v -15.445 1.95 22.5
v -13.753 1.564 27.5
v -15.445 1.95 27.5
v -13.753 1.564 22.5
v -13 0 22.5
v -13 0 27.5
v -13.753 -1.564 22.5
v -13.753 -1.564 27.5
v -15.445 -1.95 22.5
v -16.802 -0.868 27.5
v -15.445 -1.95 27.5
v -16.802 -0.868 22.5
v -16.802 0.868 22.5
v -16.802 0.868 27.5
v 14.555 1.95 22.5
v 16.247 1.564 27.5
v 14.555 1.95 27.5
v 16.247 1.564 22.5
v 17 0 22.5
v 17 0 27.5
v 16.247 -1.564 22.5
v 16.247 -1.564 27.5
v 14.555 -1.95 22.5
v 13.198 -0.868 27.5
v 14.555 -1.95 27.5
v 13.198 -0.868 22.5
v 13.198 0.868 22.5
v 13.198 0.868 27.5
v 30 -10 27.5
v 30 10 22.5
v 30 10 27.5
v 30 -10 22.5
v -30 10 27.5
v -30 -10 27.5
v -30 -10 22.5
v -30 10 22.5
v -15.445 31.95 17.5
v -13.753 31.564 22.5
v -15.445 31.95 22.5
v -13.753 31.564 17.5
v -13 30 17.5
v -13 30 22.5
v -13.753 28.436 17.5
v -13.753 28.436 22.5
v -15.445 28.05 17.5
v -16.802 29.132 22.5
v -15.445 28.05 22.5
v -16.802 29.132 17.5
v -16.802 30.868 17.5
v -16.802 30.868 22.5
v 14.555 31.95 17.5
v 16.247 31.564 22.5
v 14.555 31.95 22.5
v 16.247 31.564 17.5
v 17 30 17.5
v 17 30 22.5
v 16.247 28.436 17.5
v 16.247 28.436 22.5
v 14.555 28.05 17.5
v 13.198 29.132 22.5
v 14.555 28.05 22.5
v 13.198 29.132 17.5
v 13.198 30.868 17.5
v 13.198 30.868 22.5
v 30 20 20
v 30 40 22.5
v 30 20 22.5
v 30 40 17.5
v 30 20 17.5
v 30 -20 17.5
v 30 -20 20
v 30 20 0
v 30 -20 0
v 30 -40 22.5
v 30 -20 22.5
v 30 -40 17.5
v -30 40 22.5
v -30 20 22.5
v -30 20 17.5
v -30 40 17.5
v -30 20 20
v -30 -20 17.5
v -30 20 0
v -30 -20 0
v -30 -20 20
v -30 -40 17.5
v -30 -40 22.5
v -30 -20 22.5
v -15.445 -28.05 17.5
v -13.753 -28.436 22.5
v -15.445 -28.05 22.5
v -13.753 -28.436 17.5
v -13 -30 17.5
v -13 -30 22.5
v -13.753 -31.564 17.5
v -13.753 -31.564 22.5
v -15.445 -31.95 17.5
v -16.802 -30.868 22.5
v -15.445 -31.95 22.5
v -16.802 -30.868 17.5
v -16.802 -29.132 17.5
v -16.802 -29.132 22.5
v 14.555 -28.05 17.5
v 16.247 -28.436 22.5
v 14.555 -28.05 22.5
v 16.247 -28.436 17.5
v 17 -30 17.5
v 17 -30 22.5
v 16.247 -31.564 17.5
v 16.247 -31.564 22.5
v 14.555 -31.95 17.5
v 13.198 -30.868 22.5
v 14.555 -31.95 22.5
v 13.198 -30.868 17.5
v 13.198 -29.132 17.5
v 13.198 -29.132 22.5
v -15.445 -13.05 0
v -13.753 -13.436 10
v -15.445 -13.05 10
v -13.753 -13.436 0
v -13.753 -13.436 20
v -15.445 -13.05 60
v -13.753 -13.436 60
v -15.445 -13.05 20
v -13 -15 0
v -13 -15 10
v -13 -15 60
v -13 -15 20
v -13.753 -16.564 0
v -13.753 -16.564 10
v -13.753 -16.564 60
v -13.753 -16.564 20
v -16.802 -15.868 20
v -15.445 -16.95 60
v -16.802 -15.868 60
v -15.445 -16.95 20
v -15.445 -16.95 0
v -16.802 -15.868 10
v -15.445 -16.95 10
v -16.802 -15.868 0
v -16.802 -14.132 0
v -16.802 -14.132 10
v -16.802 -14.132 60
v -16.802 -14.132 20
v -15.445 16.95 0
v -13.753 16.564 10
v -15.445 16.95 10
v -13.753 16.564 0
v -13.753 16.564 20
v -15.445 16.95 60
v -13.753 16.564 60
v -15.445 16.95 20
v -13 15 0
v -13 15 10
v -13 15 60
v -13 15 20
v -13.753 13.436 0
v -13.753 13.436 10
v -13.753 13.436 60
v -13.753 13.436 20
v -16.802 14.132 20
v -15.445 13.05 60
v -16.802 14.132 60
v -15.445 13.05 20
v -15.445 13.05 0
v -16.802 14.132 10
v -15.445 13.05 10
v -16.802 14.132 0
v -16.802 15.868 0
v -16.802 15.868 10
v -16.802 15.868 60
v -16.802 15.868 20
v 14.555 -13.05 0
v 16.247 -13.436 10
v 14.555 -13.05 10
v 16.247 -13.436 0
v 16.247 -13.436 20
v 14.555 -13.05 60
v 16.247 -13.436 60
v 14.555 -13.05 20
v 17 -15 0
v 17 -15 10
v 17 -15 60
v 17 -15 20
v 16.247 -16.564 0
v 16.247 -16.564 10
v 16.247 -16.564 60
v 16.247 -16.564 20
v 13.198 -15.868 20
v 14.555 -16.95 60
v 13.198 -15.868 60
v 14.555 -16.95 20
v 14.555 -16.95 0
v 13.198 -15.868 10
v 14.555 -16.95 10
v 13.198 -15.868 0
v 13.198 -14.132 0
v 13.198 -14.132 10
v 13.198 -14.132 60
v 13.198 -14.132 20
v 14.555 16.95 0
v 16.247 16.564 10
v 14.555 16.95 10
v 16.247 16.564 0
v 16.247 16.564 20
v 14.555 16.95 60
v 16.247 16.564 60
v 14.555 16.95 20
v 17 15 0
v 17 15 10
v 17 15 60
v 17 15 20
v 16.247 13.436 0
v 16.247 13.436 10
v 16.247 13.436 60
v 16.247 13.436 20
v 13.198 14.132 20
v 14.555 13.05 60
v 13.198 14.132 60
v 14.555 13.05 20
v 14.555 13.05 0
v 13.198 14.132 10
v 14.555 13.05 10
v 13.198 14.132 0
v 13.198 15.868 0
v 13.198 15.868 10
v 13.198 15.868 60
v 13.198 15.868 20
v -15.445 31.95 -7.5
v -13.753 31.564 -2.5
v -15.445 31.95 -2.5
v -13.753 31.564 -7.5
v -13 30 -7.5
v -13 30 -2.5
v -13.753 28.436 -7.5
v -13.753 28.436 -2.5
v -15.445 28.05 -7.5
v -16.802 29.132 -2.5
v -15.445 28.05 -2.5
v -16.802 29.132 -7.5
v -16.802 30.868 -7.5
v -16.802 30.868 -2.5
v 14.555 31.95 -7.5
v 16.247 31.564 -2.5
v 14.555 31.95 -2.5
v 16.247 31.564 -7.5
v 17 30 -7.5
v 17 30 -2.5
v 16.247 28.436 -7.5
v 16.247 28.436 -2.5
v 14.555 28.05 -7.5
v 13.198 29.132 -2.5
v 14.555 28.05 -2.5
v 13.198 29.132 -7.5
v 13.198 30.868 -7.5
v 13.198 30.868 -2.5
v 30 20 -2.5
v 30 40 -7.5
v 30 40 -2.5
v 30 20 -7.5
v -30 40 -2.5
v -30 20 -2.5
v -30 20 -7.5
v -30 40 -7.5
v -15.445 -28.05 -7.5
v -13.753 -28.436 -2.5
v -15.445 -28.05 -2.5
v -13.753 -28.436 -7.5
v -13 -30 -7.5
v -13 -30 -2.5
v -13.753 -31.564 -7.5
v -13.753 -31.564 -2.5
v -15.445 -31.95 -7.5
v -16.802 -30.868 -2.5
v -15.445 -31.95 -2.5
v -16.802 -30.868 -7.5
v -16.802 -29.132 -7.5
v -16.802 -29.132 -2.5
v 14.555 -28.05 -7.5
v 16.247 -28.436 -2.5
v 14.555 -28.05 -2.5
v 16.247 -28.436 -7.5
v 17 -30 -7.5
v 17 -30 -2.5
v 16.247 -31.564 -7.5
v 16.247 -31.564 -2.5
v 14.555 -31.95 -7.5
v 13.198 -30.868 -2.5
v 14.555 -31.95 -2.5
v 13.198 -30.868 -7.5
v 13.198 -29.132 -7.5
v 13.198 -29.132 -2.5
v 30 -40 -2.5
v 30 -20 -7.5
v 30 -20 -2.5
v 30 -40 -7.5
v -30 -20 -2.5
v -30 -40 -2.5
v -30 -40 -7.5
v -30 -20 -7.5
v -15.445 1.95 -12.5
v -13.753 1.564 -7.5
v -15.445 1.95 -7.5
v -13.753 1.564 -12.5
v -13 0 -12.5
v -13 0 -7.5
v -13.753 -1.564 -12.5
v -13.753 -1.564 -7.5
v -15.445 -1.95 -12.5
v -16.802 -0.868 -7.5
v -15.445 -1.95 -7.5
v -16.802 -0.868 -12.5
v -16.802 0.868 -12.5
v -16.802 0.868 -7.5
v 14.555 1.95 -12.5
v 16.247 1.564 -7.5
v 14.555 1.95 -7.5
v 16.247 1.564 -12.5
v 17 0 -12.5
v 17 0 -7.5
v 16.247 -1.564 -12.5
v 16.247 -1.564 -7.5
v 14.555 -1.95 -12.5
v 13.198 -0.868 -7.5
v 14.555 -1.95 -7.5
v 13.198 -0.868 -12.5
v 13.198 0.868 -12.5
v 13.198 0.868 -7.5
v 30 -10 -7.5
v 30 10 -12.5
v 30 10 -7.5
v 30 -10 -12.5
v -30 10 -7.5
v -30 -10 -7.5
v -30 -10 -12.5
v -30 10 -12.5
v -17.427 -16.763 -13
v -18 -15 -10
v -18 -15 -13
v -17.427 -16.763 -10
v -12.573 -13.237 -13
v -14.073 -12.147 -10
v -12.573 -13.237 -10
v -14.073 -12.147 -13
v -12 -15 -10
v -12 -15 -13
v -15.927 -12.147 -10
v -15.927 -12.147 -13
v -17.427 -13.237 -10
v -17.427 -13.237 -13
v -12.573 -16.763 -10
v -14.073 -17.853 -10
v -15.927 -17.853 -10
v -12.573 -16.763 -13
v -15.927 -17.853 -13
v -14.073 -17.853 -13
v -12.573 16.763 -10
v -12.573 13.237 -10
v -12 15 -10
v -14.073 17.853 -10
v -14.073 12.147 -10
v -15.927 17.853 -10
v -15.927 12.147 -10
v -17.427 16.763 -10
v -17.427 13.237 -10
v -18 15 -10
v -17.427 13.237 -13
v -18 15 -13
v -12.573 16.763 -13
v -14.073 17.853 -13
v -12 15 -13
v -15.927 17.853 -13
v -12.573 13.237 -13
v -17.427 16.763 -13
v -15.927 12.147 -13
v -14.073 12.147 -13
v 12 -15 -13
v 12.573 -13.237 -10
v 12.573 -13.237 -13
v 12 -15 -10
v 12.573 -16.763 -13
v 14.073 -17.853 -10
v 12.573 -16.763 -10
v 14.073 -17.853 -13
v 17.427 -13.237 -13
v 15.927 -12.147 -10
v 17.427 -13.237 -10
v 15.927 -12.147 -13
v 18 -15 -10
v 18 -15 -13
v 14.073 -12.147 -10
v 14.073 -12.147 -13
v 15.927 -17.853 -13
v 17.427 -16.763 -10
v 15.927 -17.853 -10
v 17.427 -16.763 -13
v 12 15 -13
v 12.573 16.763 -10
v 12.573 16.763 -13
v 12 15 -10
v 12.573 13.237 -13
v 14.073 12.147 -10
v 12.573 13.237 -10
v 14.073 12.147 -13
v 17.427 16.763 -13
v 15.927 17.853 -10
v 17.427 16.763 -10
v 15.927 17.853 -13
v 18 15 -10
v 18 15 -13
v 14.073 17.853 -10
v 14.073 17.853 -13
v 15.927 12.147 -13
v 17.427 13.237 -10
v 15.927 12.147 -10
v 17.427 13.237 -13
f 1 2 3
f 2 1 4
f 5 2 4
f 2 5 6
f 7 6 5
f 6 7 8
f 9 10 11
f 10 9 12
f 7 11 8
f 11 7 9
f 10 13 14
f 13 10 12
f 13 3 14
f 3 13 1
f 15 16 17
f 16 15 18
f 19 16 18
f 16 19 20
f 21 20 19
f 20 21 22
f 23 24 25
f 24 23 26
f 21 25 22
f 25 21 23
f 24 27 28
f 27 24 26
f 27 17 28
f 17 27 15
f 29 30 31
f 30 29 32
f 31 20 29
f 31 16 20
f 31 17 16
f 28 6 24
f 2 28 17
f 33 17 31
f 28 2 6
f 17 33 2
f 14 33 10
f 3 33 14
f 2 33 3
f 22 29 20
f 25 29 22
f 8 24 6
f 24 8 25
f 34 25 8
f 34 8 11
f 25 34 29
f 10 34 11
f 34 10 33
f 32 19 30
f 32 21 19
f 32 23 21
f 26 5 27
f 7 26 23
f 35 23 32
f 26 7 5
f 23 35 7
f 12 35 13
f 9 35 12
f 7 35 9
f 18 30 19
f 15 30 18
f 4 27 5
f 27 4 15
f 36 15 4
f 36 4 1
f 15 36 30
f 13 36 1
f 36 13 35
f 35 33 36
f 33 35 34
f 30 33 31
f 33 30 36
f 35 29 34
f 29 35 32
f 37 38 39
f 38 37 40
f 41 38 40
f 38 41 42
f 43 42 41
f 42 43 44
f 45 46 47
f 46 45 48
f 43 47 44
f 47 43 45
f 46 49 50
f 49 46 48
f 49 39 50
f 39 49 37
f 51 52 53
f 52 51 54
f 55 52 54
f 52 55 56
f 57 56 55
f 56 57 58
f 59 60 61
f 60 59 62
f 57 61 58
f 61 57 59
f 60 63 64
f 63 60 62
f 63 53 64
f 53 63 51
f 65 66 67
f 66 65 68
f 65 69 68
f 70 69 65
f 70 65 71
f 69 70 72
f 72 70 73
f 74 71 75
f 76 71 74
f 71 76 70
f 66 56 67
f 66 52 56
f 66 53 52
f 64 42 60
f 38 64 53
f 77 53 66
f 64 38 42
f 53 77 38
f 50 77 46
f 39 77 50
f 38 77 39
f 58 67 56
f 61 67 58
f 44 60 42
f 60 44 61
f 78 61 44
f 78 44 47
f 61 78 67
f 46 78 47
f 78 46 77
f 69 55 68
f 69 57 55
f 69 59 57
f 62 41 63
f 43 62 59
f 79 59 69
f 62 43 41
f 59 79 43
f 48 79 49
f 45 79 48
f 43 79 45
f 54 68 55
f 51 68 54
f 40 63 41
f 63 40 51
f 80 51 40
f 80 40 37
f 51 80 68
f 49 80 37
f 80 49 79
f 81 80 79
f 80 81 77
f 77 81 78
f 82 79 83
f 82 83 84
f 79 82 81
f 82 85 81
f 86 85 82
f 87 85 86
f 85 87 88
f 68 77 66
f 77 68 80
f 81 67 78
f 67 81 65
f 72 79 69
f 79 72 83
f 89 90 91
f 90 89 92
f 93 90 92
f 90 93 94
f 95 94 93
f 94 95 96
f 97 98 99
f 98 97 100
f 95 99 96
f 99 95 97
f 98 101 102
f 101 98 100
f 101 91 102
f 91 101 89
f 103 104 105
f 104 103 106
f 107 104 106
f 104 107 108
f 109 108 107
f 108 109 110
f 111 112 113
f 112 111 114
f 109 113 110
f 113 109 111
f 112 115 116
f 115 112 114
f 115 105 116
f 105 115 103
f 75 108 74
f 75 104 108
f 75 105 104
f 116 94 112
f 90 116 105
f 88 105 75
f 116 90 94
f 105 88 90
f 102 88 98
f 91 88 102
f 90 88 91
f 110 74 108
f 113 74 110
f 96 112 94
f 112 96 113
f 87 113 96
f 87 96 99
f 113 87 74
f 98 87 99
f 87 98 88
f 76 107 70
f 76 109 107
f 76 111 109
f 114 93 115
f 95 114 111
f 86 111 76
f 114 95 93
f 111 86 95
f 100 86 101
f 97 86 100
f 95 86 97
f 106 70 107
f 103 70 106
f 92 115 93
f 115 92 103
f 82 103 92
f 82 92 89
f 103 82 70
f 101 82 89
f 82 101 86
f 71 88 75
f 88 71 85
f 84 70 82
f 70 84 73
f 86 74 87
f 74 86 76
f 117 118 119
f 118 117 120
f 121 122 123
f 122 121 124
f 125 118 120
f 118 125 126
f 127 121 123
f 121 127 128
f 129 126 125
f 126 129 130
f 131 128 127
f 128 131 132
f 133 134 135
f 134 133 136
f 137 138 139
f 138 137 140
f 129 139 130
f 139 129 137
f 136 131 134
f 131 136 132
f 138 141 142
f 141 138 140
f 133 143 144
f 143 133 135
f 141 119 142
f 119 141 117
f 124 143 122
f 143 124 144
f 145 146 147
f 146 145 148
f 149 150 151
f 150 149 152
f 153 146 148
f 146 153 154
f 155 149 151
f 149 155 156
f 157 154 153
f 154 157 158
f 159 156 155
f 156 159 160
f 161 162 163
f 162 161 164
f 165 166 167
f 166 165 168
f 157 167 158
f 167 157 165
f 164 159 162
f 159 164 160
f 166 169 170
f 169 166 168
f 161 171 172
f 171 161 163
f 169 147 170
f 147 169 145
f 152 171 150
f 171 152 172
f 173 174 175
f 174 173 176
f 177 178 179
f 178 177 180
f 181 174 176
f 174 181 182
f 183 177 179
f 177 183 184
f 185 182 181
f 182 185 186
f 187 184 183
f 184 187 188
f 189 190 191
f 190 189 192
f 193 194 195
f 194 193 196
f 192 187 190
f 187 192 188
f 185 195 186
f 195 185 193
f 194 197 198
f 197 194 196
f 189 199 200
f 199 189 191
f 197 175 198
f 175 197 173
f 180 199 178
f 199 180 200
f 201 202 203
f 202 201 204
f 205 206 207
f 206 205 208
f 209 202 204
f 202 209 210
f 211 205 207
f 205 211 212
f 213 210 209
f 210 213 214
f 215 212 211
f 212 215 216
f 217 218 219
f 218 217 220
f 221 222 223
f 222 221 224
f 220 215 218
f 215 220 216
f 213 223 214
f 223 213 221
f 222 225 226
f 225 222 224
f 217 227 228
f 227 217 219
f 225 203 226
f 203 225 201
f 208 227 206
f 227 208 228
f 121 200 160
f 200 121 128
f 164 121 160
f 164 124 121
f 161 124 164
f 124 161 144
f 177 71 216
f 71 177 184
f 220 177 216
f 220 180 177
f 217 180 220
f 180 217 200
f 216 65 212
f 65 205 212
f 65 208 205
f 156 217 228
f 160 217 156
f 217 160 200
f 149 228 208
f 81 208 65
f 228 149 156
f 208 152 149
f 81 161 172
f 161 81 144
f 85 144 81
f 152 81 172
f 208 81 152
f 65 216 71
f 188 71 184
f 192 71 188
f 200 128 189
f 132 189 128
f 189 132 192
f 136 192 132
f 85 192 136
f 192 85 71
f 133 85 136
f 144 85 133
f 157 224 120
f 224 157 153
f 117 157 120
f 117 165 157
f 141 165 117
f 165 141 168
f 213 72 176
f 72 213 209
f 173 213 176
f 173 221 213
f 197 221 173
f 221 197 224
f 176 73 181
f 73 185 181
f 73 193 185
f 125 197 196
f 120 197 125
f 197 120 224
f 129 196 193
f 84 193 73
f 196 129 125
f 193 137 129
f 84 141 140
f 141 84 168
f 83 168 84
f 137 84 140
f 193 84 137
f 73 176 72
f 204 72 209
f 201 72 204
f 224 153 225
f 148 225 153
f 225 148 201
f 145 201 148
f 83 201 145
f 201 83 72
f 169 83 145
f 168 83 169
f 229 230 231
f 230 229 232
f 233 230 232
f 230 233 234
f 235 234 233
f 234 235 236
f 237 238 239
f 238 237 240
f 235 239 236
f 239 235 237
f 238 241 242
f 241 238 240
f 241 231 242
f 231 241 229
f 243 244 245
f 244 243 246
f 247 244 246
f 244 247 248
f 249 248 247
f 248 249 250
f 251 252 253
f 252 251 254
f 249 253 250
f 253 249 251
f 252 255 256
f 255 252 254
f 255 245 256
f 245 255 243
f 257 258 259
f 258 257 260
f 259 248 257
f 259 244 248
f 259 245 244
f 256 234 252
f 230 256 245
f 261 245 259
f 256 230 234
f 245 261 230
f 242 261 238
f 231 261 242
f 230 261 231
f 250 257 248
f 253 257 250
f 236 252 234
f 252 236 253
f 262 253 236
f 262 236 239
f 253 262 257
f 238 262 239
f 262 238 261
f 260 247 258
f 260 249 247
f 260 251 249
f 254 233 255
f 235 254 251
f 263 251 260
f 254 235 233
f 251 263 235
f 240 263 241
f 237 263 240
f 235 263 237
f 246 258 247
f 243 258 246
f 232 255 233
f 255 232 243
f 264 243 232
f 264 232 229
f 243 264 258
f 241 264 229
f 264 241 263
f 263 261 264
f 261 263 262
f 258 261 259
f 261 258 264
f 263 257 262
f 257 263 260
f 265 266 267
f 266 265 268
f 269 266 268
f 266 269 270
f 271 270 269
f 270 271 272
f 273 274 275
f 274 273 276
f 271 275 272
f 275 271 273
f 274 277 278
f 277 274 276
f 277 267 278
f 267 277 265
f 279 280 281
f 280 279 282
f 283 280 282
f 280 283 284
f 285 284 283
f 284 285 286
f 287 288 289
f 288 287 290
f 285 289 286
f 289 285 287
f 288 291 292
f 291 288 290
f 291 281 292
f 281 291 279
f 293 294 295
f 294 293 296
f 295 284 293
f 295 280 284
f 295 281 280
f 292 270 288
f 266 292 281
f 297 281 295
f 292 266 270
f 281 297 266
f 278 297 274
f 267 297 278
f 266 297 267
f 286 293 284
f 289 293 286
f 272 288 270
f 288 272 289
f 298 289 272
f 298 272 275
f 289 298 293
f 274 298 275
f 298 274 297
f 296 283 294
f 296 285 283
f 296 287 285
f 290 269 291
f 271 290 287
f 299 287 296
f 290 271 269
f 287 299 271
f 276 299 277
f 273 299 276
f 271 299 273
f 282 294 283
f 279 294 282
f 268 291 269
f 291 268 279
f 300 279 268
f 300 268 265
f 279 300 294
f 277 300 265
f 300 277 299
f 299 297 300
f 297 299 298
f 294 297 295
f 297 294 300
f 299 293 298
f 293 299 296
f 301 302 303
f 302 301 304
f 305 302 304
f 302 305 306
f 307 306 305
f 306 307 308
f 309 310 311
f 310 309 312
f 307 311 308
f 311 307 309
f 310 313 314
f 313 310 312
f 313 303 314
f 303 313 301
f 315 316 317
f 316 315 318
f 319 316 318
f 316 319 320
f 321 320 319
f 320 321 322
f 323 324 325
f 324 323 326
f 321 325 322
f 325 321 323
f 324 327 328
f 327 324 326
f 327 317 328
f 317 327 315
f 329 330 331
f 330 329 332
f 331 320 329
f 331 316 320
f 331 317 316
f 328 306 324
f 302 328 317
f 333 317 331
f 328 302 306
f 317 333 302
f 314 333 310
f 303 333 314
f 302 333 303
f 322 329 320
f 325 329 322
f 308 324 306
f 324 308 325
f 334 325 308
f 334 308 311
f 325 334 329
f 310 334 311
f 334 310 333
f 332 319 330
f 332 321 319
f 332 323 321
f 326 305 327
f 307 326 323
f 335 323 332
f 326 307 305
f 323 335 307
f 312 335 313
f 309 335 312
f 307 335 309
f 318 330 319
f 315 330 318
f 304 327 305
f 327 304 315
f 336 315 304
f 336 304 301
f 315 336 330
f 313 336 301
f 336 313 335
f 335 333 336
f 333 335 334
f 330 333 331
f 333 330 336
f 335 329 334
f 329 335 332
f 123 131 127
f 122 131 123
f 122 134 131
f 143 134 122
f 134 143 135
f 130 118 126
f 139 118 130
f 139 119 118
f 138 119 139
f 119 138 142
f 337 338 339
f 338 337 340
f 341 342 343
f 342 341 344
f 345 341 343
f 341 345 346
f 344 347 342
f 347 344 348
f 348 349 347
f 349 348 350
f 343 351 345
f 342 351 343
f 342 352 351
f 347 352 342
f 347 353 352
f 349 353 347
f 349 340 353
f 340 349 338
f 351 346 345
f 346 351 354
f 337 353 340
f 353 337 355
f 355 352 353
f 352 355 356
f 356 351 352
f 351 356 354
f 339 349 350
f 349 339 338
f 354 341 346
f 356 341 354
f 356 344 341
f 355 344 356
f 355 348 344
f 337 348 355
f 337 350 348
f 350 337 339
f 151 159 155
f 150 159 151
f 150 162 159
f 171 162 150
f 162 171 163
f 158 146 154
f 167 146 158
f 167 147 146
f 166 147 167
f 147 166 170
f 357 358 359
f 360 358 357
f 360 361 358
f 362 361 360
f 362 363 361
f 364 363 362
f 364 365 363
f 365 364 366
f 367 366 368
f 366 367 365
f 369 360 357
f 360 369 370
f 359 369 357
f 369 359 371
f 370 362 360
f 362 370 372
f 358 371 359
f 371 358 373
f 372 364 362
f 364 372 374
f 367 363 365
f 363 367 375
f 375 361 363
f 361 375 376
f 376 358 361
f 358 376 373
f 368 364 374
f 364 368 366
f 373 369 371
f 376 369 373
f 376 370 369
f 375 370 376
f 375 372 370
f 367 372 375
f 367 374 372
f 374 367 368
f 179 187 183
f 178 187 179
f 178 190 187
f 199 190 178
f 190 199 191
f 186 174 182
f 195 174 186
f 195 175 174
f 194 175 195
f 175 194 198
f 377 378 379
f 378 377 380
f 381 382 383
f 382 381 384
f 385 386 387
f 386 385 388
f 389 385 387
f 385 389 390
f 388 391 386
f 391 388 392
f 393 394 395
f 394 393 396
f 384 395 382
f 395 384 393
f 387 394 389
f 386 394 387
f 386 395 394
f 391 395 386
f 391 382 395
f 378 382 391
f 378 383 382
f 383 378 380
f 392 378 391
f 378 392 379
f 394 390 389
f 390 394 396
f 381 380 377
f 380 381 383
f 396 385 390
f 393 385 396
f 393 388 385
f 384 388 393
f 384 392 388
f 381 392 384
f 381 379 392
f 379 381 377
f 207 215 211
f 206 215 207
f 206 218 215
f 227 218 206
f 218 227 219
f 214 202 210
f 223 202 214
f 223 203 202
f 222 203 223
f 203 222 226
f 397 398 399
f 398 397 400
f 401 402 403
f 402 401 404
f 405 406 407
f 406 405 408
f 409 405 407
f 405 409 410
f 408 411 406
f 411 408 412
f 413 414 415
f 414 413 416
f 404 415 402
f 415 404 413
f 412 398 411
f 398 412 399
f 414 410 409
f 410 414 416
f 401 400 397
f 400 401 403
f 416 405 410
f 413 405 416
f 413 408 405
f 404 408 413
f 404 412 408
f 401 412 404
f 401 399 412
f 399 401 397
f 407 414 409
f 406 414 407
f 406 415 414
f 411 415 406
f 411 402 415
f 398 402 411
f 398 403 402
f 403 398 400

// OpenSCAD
// Parameters
plate_thickness = 5; // Thickness of side and connecting plates
block_width = 40;    // Width of the central block
block_height = 20;   // Height of the central block
block_length = 60;   // Length of the central block
plate_length = 60;   // Length of side and connecting plates
plate_width = 20;    // Width of side and connecting plates
bolt_diameter = 4;   // Diameter of bolts
bolt_length = 50;    // Shortened length of bolts
nut_diameter = 6;    // Diameter of nuts
nut_thickness = 3;   // Thickness of nuts
hole_spacing = 30;   // Distance between bolt holes

// Central Block
module central_block() {
    difference() {
        cube([block_length, block_width, block_height], center = true);
        for (x = [-hole_spacing/2, hole_spacing/2]) {
            for (y = [-block_width/2 + 5, block_width/2 - 5]) {
                translate([x, y, 0])
                    cylinder(r = bolt_diameter/2, h = block_height + 2, center = true);
            }
        }
    }
}

// Side Plate
module side_plate() {
    difference() {
        cube([plate_length, plate_width, plate_thickness], center = true);
        for (x = [-hole_spacing/2, hole_spacing/2]) {
            translate([x, 0, 0])
                cylinder(r = bolt_diameter/2, h = plate_thickness + 2, center = true);
        }
    }
}

// Connecting Plate
module connecting_plate() {
    difference() {
        cube([plate_length, plate_width, plate_thickness], center = true);
        for (x = [-hole_spacing/2, hole_spacing/2]) {
            translate([x, 0, 0])
                cylinder(r = bolt_diameter/2, h = plate_thickness + 2, center = true);
        }
    }
}

// Bolt
module bolt() {
    cylinder(r = bolt_diameter/2, h = bolt_length, center = false);
}

// Nut
module nut() {
    cylinder(r = nut_diameter/2, h = nut_thickness, center = false);
}

// Assembly
module assembly() {
    // Layer 1: Top Connecting Plate
    translate([0, 0, bolt_length/2])
        connecting_plate();

    // Layer 2: Top Side Plates
    translate([0, plate_width/2 + block_width/2, bolt_length/2 - plate_thickness])
        side_plate();
    translate([0, -plate_width/2 - block_width/2, bolt_length/2 - plate_thickness])
        side_plate();

    // Layer 3: Central Block
    translate([0, 0, bolt_length/2 - plate_thickness - block_height/2])
        central_block();

    // Layer 4: Bottom Side Plates
    translate([0, plate_width/2 + block_width/2, bolt_length/2 - plate_thickness - block_height - plate_thickness])
        side_plate();
    translate([0, -plate_width/2 - block_width/2, bolt_length/2 - plate_thickness - block_height - plate_thickness])
        side_plate();

    // Layer 5: Bottom Connecting Plate
    translate([0, 0, bolt_length/2 - plate_thickness - block_height - 2*plate_thickness])
        connecting_plate();

    // Fasteners: Bolts and Nuts
    for (x = [-hole_spacing/2, hole_spacing/2]) {
        for (y = [-block_width/2 + 5, block_width/2 - 5]) {
            translate([x, y, bolt_length/2 - plate_thickness - block_height/2])
                bolt();
            translate([x, y, bolt_length/2 - plate_thickness - block_height - 2*plate_thickness - nut_thickness])
                nut();
        }
    }
}

// Render the assembly
assembly();
